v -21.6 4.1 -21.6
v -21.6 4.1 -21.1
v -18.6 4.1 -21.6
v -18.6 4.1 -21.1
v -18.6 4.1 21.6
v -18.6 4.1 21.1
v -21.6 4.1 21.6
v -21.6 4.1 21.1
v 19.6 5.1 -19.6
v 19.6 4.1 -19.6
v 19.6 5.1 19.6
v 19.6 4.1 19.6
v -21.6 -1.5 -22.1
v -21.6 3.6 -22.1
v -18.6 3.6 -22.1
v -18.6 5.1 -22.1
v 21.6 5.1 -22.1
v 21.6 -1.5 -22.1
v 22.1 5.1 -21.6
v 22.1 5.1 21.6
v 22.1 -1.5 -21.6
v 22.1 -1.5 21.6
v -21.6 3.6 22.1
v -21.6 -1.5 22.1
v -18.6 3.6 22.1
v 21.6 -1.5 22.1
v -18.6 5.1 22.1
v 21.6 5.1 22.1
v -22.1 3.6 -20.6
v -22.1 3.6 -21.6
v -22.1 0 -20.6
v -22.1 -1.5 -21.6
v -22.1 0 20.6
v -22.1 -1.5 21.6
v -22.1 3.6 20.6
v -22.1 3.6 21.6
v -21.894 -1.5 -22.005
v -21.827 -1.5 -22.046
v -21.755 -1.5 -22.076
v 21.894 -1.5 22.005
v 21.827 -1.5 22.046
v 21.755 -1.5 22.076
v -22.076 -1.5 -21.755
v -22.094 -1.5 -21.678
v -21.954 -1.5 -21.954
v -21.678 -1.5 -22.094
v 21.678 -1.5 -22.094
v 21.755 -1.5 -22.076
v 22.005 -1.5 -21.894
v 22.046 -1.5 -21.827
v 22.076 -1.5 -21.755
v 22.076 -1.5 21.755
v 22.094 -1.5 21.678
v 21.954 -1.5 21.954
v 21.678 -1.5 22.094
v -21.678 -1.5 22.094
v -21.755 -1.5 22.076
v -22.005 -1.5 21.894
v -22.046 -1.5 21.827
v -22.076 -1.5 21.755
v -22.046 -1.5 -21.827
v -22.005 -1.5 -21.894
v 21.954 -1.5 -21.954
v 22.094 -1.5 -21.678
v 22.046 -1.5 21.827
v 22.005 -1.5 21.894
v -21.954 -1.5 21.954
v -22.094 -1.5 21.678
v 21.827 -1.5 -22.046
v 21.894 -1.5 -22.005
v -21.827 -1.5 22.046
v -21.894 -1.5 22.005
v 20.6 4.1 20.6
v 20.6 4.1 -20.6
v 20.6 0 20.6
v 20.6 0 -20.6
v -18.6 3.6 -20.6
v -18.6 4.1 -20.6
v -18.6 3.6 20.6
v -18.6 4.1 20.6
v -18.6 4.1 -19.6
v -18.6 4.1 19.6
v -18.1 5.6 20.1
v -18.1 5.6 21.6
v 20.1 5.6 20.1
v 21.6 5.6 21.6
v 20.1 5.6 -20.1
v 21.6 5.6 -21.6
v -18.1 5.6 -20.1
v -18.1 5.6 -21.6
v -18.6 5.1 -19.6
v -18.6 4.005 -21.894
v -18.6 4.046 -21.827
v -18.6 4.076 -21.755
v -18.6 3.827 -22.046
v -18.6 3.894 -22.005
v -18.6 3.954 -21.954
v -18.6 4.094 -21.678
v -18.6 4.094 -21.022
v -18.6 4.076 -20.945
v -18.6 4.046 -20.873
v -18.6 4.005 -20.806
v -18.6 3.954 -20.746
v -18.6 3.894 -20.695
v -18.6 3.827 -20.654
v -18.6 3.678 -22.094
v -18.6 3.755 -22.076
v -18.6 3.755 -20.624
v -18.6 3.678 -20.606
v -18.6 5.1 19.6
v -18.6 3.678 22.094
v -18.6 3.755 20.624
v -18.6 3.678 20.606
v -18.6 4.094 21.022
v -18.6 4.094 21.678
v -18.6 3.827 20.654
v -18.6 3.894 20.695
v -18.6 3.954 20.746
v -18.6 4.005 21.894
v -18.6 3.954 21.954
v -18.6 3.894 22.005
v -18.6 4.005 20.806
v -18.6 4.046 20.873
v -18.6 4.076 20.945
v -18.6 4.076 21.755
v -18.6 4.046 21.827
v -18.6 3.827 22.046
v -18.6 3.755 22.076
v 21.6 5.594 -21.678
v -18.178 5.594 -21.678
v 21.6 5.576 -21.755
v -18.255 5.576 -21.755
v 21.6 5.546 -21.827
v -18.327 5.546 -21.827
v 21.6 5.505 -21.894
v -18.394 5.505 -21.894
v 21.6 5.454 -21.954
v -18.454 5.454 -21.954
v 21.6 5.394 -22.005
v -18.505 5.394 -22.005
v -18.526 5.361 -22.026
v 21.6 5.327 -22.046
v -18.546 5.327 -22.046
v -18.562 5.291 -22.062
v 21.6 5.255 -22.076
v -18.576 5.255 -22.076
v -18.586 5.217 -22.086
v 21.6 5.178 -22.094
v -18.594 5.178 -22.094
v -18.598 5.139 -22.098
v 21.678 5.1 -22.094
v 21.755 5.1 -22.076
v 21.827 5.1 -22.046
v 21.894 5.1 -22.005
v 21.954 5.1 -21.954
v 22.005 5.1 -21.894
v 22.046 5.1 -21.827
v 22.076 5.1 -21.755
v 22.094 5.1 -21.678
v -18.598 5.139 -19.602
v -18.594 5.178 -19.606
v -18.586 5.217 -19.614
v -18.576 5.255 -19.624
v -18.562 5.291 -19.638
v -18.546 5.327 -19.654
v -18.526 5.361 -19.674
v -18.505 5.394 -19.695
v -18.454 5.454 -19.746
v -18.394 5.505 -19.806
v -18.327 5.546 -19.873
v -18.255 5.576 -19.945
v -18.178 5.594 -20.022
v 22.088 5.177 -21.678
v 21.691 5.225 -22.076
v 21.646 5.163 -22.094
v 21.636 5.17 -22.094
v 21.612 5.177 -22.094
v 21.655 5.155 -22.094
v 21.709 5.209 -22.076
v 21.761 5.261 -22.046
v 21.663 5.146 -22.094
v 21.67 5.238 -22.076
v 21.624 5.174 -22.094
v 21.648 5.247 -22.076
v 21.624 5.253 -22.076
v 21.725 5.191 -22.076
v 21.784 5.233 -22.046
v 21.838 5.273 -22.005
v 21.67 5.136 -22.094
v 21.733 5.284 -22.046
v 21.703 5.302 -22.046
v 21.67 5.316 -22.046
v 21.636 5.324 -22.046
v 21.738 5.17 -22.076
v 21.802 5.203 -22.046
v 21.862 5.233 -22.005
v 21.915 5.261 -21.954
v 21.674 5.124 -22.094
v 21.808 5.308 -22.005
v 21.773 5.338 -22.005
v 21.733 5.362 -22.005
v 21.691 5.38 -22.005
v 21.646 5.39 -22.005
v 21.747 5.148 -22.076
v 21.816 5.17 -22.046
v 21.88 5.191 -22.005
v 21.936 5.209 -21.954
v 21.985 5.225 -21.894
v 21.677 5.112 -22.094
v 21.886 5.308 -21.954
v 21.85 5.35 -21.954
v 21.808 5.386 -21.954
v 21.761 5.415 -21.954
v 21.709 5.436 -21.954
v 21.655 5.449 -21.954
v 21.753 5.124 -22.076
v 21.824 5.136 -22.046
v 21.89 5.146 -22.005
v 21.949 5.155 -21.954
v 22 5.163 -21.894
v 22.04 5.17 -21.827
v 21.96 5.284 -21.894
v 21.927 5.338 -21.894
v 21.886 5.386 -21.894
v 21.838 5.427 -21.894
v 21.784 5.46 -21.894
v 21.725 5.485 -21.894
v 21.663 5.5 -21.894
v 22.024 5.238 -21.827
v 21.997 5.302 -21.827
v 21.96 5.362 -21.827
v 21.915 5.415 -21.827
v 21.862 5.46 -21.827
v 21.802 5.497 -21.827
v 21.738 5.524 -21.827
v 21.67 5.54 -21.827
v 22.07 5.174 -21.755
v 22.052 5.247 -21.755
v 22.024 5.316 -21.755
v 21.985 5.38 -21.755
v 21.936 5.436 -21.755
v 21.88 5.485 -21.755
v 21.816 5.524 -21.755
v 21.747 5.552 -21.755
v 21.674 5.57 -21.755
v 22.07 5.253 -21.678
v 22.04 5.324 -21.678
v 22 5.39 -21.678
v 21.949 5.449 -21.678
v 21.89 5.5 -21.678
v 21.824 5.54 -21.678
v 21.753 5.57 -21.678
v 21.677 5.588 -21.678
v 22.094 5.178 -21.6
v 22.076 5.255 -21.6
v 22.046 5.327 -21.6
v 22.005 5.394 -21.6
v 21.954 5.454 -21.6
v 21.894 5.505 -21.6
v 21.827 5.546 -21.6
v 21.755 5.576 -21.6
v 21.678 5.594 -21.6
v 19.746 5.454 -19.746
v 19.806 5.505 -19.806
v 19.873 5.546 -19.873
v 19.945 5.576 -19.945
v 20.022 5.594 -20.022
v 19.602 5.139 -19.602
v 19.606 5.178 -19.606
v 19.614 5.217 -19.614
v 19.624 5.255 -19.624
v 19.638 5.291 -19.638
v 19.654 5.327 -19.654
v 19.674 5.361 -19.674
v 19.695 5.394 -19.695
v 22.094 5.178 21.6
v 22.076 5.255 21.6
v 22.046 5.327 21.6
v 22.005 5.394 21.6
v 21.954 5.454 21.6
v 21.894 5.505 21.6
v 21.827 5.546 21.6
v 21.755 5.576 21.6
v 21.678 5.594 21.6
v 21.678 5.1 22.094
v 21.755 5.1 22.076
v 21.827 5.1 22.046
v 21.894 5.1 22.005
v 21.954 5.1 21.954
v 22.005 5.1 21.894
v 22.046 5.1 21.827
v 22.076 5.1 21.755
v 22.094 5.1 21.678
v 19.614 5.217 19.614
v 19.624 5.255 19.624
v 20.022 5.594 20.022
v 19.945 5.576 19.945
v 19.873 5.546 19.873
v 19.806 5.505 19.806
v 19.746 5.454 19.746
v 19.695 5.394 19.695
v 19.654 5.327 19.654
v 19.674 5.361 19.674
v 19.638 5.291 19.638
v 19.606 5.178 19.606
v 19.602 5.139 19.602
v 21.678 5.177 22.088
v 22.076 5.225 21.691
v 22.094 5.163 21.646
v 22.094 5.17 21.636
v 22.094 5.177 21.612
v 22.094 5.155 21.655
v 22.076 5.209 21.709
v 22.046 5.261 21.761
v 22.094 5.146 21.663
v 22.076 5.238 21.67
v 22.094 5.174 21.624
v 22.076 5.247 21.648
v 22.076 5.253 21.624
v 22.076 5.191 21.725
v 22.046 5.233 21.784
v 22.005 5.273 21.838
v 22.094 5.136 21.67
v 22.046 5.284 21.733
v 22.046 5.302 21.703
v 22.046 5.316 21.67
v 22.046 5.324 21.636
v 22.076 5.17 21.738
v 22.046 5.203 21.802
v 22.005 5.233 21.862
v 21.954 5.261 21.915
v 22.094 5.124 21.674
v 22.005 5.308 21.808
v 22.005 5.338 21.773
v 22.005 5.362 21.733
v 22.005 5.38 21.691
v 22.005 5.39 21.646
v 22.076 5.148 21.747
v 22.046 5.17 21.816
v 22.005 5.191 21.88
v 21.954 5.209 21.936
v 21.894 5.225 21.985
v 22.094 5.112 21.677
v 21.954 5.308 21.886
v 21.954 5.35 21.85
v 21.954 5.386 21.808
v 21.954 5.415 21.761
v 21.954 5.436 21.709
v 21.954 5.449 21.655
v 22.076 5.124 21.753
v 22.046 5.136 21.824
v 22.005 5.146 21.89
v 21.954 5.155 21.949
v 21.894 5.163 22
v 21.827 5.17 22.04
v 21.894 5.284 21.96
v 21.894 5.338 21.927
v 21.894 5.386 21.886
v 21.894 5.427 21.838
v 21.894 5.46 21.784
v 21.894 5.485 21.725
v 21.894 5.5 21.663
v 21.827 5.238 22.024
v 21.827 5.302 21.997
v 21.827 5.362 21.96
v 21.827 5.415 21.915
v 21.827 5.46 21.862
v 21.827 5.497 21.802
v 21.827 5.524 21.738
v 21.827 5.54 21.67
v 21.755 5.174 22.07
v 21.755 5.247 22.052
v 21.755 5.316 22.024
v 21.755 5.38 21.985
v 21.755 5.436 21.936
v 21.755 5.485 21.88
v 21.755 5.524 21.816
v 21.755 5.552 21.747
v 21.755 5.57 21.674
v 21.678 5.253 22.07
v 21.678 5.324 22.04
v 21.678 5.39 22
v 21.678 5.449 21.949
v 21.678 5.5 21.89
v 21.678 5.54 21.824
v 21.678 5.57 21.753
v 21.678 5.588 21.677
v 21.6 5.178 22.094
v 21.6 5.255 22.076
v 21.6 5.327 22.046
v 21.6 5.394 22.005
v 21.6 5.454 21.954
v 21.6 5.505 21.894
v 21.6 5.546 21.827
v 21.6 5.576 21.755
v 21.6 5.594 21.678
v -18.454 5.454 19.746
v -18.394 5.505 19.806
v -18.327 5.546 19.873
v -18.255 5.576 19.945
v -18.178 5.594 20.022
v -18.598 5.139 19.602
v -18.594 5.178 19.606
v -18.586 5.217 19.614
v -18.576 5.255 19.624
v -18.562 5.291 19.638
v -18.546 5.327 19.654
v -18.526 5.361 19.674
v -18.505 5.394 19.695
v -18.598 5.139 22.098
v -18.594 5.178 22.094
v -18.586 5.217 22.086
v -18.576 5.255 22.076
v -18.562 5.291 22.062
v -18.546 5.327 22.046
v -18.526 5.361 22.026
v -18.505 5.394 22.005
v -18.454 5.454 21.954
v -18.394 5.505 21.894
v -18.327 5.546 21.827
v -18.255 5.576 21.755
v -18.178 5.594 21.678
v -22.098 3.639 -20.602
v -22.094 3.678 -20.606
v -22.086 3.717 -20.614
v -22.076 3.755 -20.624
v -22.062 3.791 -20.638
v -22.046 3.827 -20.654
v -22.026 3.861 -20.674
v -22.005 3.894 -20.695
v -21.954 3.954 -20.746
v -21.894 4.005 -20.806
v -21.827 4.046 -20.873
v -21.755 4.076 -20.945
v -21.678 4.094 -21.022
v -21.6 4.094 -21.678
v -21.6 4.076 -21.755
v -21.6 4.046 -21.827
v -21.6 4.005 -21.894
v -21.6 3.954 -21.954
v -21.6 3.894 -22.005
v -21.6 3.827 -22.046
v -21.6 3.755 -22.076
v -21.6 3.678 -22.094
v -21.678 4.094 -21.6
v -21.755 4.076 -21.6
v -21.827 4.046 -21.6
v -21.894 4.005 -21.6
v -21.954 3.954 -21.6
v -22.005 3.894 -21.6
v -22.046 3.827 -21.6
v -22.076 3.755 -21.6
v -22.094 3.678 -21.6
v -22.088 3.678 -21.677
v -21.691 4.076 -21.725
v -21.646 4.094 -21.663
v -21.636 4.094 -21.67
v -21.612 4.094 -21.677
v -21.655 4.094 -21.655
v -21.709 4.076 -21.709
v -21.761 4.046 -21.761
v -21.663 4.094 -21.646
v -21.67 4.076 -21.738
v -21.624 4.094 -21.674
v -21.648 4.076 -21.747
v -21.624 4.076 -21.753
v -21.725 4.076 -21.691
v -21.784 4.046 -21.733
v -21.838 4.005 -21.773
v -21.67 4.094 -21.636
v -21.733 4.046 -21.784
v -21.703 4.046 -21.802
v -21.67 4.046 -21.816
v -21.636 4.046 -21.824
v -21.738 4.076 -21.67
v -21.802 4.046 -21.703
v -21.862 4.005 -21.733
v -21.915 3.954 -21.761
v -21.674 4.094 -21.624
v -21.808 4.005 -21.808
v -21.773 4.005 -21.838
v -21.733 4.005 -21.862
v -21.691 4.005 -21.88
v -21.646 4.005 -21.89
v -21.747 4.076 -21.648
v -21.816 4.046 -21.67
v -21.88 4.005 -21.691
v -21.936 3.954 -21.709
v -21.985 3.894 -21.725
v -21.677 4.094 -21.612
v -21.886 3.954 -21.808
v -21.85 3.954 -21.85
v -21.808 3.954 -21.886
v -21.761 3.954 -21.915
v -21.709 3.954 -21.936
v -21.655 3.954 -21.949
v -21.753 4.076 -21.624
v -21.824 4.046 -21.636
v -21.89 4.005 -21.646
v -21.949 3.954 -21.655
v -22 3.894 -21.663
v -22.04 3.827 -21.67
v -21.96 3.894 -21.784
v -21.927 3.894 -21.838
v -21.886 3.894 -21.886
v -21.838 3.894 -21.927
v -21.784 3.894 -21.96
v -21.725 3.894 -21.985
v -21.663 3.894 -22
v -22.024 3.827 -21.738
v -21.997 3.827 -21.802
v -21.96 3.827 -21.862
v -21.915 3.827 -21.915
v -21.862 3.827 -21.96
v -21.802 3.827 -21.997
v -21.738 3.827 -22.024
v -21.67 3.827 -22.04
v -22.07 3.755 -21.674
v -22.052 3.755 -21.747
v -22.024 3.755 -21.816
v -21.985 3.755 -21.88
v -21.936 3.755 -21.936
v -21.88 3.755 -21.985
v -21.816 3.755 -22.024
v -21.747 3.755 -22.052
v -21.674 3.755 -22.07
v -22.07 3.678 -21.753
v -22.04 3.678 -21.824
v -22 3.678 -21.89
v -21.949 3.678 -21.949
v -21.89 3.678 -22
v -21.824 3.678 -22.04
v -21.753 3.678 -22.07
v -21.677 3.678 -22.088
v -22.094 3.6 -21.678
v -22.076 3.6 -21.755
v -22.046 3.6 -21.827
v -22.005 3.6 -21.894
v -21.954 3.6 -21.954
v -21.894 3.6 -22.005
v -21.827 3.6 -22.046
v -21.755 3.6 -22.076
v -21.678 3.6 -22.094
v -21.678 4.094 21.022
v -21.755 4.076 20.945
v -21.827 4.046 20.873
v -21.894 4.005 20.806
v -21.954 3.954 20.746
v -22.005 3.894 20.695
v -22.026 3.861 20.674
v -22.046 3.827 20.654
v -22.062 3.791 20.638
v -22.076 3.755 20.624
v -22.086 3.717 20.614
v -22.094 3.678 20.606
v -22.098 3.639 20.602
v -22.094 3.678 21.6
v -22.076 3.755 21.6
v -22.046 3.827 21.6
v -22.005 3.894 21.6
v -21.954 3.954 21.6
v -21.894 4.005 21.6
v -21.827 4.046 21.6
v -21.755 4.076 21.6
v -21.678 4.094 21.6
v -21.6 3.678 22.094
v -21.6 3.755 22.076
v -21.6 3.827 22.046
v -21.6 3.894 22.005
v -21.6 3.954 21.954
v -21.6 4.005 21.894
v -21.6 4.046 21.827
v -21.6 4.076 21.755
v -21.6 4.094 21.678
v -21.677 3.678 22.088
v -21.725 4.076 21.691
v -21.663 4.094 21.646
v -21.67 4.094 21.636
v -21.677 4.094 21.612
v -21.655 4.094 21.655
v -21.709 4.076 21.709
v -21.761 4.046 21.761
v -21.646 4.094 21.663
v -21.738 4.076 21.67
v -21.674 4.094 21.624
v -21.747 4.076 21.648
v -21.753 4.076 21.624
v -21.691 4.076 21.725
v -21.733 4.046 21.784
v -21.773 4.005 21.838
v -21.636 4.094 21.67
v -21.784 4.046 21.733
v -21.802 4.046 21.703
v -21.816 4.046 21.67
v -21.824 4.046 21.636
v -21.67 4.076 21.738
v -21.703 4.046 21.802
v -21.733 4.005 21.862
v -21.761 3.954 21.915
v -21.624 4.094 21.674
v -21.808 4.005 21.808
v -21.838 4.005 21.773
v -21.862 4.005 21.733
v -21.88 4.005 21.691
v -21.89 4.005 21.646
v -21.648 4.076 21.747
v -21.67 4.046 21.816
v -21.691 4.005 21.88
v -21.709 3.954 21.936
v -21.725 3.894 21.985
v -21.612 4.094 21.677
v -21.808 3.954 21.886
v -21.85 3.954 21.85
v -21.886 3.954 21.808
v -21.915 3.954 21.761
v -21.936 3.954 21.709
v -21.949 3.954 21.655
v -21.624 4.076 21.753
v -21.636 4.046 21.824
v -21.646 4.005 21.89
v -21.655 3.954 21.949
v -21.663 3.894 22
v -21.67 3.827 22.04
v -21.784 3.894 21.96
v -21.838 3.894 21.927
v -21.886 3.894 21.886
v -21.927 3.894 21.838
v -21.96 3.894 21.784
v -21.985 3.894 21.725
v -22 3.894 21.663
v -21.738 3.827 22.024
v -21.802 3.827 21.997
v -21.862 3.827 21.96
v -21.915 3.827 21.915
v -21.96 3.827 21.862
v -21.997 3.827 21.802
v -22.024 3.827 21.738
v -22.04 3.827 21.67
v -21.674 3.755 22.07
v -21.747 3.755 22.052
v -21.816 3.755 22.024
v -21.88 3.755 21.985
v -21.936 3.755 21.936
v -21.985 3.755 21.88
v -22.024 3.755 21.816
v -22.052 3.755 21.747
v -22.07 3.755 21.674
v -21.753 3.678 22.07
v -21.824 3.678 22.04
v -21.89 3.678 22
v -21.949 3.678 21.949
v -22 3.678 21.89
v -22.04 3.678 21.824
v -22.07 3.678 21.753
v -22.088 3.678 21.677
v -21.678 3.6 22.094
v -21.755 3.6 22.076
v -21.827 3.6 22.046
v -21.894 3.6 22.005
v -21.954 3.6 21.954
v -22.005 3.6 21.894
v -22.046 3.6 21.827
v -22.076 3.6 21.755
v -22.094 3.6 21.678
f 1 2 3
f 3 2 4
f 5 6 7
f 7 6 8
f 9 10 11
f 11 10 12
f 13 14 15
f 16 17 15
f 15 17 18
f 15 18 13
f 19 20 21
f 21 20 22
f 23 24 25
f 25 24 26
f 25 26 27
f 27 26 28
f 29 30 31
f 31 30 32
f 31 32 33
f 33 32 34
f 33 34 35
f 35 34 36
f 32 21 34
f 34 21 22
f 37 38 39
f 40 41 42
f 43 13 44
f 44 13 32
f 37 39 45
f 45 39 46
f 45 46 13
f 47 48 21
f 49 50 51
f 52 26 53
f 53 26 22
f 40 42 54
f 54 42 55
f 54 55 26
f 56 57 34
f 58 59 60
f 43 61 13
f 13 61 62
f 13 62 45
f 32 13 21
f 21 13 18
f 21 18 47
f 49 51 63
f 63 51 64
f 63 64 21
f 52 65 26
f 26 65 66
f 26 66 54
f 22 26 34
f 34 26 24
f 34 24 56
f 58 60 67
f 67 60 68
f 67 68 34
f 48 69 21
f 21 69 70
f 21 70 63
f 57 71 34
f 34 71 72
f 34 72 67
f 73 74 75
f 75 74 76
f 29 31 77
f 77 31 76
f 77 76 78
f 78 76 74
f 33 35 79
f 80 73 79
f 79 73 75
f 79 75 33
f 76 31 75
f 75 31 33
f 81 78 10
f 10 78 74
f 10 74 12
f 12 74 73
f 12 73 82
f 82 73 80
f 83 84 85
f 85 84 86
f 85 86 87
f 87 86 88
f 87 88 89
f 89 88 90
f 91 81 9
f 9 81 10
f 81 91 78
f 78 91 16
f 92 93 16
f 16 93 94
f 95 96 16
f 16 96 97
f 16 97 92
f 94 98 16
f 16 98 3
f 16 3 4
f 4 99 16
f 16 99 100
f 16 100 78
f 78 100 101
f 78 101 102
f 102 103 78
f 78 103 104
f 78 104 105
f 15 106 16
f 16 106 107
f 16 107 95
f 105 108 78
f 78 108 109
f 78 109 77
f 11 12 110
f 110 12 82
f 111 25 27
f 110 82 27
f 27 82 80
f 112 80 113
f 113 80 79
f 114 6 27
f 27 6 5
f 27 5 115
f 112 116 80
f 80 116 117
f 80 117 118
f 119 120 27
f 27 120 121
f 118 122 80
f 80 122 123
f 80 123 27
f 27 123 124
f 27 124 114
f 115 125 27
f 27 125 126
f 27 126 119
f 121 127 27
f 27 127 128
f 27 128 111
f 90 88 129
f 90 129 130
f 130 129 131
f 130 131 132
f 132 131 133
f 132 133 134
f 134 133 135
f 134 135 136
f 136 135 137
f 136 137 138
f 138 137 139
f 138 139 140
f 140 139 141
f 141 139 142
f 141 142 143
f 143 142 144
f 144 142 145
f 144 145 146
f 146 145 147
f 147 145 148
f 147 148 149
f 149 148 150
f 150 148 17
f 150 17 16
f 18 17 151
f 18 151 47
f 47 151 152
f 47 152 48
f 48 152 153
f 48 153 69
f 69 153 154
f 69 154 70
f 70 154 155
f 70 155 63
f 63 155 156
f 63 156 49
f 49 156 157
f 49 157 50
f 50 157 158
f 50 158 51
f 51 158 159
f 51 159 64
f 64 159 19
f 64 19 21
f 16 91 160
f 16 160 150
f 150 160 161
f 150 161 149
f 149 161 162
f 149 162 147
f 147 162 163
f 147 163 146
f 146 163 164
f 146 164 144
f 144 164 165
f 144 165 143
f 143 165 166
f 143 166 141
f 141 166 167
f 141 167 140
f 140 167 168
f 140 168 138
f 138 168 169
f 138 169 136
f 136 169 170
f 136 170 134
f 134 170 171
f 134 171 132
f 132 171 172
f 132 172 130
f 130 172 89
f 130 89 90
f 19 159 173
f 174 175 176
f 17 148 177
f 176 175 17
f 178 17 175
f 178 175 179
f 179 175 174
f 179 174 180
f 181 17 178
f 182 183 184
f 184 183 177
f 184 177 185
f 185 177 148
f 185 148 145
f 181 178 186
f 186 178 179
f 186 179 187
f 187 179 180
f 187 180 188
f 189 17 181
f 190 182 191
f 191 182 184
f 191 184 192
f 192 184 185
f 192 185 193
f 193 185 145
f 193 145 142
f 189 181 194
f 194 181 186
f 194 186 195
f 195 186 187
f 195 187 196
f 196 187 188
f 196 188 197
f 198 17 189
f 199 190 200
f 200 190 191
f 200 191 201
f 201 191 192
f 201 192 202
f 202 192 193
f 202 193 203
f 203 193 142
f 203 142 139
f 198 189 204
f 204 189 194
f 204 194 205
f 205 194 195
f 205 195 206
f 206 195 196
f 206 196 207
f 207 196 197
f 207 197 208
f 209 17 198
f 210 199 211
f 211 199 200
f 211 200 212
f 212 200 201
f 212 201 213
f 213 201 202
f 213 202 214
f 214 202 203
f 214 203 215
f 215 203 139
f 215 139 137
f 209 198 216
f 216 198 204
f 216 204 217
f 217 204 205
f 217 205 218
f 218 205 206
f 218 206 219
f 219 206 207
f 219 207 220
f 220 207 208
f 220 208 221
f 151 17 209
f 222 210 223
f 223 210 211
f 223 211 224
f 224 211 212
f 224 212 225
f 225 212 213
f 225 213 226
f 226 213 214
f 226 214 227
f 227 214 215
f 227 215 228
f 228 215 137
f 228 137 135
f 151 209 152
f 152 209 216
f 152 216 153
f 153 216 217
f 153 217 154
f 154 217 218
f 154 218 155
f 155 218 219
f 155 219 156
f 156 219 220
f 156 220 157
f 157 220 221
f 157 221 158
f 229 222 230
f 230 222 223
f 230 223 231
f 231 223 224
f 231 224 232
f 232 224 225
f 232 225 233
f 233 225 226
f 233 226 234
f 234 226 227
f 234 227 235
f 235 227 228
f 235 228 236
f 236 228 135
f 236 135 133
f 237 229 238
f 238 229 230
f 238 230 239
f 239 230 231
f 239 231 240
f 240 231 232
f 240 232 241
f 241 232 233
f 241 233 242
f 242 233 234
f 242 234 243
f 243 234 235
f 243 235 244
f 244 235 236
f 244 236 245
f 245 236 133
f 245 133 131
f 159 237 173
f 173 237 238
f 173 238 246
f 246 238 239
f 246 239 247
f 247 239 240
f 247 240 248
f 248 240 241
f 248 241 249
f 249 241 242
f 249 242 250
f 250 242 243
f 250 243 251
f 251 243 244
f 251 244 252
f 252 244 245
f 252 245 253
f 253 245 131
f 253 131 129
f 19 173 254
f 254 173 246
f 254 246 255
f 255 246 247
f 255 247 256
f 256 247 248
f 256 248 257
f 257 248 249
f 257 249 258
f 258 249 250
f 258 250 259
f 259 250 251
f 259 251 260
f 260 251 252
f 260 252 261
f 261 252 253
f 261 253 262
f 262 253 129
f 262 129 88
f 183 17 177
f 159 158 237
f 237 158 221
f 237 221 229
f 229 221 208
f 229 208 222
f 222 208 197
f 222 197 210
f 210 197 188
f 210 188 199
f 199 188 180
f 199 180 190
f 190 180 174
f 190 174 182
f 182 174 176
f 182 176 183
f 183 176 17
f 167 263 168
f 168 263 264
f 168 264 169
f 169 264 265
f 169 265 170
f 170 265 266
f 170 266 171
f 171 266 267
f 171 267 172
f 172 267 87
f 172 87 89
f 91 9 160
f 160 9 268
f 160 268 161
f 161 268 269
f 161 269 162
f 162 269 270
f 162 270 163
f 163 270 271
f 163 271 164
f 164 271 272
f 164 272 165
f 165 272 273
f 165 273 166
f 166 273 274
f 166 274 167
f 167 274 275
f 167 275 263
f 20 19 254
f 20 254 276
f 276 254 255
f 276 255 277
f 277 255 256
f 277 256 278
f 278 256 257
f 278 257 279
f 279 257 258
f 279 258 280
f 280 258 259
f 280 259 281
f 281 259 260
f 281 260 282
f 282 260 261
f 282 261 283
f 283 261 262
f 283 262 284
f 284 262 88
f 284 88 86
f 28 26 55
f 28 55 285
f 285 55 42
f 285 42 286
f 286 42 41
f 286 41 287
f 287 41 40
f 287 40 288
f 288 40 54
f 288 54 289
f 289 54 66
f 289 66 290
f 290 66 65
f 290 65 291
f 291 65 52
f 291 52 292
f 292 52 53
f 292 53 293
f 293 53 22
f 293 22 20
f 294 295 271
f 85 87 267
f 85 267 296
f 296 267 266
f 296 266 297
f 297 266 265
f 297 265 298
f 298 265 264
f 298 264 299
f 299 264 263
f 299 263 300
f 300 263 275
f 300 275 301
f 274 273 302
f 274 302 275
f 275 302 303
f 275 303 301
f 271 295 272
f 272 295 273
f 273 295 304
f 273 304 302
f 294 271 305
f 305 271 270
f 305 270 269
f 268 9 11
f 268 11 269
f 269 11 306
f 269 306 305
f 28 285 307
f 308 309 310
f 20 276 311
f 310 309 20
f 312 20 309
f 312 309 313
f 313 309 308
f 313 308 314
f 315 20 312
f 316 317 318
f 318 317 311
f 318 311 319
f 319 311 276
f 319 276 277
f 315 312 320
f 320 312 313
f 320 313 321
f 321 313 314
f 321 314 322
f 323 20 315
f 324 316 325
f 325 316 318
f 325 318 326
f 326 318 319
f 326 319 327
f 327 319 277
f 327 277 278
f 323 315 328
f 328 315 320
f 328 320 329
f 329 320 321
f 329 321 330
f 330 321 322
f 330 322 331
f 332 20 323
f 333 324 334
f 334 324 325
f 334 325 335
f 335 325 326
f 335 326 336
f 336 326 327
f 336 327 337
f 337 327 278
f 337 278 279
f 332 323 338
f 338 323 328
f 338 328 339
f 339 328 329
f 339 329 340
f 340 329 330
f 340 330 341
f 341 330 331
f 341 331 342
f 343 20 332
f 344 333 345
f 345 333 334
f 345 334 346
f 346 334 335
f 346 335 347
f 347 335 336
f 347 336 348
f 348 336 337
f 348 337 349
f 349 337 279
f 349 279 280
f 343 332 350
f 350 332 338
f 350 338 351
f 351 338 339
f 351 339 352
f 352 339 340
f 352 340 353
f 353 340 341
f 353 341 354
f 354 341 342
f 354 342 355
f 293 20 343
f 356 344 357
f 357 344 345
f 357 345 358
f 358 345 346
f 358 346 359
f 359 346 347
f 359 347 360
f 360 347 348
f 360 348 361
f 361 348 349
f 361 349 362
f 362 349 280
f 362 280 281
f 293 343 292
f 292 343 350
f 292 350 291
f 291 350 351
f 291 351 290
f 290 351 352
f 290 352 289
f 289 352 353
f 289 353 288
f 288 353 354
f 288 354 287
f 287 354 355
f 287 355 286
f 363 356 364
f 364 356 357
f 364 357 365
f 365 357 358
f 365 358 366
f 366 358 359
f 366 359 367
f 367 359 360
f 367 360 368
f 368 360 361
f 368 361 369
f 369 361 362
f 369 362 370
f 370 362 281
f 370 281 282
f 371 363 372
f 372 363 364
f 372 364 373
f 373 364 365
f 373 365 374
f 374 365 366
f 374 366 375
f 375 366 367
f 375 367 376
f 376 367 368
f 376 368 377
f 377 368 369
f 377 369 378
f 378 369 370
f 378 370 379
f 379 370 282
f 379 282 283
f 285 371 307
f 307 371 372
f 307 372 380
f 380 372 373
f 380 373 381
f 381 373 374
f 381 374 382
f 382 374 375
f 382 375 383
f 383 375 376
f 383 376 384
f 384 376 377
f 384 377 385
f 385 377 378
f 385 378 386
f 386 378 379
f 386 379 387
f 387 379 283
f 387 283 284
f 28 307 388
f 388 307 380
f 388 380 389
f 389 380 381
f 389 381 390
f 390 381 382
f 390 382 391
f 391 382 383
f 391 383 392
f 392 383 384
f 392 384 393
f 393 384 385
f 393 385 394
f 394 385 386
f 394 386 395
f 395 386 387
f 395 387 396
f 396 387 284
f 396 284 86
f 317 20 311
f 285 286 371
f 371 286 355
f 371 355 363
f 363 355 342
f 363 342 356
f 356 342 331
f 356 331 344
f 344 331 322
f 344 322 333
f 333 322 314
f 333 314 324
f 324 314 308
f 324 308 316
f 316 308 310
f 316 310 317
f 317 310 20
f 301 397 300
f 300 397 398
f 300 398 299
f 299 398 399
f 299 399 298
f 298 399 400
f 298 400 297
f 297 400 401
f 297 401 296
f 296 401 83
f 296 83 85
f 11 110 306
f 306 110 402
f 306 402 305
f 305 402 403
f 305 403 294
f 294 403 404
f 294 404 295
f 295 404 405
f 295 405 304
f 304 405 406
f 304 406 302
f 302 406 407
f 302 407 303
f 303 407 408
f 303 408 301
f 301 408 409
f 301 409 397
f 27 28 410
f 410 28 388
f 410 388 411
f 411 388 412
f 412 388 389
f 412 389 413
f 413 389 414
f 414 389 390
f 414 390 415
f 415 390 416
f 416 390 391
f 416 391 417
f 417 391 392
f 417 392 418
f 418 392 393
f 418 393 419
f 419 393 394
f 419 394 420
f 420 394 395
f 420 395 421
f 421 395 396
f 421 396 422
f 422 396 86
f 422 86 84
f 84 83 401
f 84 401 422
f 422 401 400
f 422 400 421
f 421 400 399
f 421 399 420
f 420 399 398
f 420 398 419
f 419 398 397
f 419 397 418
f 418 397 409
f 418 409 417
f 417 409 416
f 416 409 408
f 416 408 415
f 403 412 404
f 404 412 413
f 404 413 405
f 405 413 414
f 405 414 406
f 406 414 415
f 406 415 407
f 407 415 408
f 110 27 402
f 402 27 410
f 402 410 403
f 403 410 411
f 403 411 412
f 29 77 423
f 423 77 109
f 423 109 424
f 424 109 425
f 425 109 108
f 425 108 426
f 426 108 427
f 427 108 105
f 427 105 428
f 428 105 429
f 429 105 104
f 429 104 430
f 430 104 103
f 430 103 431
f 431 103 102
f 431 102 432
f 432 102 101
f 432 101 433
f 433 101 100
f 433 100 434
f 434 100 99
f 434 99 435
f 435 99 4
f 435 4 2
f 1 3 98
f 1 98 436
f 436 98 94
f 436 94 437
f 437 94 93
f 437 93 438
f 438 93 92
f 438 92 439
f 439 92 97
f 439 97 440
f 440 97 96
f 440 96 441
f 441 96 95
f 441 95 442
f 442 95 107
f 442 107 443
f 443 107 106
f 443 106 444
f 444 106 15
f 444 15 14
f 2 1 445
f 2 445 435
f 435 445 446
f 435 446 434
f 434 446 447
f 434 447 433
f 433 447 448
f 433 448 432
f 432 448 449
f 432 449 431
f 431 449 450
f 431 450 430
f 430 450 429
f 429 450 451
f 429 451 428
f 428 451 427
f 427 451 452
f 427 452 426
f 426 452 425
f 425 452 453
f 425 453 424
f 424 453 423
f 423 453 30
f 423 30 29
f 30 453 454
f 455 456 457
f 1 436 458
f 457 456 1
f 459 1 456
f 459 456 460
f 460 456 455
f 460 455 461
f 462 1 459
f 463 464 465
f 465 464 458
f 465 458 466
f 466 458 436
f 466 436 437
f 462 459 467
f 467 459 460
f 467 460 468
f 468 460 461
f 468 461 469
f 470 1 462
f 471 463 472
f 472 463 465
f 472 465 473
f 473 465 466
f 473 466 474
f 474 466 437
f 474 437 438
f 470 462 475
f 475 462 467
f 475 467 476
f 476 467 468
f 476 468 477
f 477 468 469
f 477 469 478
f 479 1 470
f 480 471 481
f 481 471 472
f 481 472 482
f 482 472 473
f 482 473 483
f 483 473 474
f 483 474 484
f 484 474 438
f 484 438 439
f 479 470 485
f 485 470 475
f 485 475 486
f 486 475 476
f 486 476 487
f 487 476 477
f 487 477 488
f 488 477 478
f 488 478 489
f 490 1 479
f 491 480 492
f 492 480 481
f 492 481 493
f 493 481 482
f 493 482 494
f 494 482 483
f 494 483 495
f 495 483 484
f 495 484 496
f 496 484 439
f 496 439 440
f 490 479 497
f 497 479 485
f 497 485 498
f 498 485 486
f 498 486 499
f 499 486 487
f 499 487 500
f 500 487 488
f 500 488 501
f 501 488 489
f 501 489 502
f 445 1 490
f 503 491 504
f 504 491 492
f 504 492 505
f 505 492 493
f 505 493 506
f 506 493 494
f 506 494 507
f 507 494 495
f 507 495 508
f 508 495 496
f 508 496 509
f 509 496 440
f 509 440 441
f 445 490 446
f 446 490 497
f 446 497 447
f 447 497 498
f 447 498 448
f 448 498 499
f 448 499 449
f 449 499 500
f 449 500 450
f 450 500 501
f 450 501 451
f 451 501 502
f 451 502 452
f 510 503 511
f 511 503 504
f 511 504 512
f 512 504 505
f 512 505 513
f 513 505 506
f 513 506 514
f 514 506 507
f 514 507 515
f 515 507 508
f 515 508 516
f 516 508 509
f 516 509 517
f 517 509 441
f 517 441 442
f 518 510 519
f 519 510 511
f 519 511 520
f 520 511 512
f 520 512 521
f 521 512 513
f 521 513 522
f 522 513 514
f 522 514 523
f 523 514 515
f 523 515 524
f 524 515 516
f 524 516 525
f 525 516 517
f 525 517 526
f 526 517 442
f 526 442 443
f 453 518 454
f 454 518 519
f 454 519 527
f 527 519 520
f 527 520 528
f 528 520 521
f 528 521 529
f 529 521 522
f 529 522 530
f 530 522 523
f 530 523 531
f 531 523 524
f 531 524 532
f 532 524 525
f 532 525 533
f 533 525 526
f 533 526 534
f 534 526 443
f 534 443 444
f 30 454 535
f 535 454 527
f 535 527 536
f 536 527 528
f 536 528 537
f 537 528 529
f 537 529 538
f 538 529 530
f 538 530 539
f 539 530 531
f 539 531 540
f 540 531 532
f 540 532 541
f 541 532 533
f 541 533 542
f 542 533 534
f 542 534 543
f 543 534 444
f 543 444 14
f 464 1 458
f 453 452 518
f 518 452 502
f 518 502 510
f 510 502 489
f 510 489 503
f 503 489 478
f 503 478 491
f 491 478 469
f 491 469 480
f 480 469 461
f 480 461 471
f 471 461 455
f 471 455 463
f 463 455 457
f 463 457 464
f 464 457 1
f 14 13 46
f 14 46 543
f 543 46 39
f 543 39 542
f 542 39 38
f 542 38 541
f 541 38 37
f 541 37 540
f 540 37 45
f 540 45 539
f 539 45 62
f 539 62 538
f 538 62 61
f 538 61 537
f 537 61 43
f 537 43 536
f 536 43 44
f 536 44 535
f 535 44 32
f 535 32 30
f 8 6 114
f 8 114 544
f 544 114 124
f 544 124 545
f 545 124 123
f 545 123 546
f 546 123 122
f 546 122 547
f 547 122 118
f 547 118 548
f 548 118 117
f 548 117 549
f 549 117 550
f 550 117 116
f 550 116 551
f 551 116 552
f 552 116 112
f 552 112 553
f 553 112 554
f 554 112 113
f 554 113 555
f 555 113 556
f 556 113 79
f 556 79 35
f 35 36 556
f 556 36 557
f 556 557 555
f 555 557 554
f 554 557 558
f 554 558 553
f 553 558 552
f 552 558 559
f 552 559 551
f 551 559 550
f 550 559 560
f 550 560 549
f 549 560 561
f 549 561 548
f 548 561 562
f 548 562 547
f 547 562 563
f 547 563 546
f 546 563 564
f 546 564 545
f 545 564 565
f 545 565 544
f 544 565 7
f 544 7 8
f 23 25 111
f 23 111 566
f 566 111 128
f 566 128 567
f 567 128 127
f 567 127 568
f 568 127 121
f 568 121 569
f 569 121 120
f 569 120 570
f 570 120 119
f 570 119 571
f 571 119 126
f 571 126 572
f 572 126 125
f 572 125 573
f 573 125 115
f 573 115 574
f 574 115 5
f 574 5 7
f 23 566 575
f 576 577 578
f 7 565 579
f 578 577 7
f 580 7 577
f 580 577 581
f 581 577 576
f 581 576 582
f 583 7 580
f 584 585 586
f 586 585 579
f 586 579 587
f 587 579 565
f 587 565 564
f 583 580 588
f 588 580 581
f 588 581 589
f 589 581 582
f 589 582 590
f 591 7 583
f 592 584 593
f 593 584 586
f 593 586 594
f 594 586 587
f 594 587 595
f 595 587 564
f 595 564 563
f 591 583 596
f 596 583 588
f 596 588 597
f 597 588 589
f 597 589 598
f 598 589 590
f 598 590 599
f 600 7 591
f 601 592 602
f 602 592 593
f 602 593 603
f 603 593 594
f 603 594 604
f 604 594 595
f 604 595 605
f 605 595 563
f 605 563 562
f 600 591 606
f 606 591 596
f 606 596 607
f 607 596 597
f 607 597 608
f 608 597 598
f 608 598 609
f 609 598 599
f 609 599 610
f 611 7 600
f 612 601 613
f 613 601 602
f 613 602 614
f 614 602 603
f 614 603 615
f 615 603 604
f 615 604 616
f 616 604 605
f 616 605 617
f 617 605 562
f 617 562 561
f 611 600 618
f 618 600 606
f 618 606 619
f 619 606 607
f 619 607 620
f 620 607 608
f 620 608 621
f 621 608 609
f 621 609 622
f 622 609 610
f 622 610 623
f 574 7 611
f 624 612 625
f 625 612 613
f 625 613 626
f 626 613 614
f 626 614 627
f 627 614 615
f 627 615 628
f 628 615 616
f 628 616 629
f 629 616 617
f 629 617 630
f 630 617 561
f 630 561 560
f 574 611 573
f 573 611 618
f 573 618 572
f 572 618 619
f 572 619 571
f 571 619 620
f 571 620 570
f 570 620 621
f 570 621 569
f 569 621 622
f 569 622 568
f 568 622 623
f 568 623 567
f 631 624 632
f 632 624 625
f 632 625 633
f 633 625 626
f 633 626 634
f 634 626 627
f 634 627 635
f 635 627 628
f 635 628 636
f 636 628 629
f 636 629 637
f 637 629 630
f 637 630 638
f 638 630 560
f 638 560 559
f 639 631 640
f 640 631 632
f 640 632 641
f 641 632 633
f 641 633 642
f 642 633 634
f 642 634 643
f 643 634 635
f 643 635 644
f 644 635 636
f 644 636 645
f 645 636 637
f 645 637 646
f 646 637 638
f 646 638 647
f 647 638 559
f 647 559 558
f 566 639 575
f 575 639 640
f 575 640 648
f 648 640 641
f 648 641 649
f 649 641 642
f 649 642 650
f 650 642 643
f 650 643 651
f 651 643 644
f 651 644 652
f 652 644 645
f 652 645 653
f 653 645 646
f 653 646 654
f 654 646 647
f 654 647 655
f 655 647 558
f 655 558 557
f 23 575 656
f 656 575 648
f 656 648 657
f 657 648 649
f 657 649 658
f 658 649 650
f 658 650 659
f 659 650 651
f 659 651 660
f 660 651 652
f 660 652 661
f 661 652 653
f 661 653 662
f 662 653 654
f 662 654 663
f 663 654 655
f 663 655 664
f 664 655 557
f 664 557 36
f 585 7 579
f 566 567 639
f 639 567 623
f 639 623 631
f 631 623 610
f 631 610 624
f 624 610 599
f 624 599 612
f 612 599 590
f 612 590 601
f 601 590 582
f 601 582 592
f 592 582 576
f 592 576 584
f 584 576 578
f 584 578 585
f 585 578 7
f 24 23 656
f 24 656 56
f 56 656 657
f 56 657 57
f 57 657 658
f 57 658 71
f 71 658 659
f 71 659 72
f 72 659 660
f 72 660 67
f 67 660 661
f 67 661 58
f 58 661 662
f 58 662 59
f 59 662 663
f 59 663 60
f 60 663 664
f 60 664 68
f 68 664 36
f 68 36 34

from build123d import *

# Parameters (mm, degrees)
SKETCH2_W           = 44.2
SKETCH2_H           = 44.2
BOSS_EXTRUDE1_DEPTH = 1.5
SKETCH2_3_W         = 44.2
SKETCH2_3_H         = 44.2
SKETCH2_3_W_2       = 41.2
SKETCH2_3_H_2       = 41.2
BOSS_EXTRUDE2_DEPTH = 4.1
SKETCH3_W           = 2.5
SKETCH3_H           = 44.2
BOSS_EXTRUDE3_DEPTH = 1.5
BOSS_EXTRUDE5_DEPTH = 38.2
SKETCH5_W           = 6.546498532
SKETCH5_H           = 41.2
CUT_EXTRUDE1_DEPTH  = 4.1
FILLET2_R           = 0.5


with BuildPart() as part:
    # Sketch2 → Boss-Extrude1 (new body)
    with BuildSketch(Plane(origin=(0, 0, 0), x_dir=(1, 0, 0), z_dir=(0, 1, 0))):
        Rectangle(SKETCH2_W, SKETCH2_H)
    extrude(amount=-BOSS_EXTRUDE1_DEPTH)

    # Sketch2<3> → Boss-Extrude2 (add)
    with BuildSketch(Plane(origin=(0, 0, 0), x_dir=(1, 0, 0), z_dir=(0, 1, 0))):
        Rectangle(SKETCH2_3_W, SKETCH2_3_H)
        Rectangle(SKETCH2_3_W_2, SKETCH2_3_H_2, mode=Mode.SUBTRACT)
    extrude(amount=BOSS_EXTRUDE2_DEPTH)

    # Sketch3 → Boss-Extrude3 (add)
    with BuildSketch(Plane(origin=(0, 4.1, 0), x_dir=(1, 0, 0), z_dir=(0, 1, 0))):
        with Locations((20.85, 0)):
            Rectangle(SKETCH3_W, SKETCH3_H)
    extrude(amount=BOSS_EXTRUDE3_DEPTH)

    # Sketch6 → Boss-Extrude5 (add)
    with BuildSketch(Plane.ZY.offset(-19.6)):
        Polygon((-19.6, 5.6), (-19.6, 4.1), (-20.6, 4.1), (-22.1, 4.1), (-22.1, 5.6), align=None)
        Polygon((19.6, 5.6), (19.6, 4.1), (20.6, 4.1), (22.1, 4.1), (22.1, 5.6), align=None)
    extrude(amount=BOSS_EXTRUDE5_DEPTH)

    # Sketch5 → Cut-Extrude1 (cut)
    with BuildSketch(Plane(origin=(0, 4.1, 0), x_dir=(1, 0, 0), z_dir=(0, 1, 0))):
        with Locations((-23.873249266, 0)):
            Rectangle(SKETCH5_W, SKETCH5_H)
    extrude(amount=-CUT_EXTRUDE1_DEPTH, mode=Mode.SUBTRACT)

    # Fillet2
    fillet2_edges = [part.edges().sort_by_distance(p)[0] for p in [
        (-22.1, 4.1, -21.35),
        (-20.35, 4.1, 22.1),
        (-20.35, 4.1, 20.6),
        (22.1, 5.6, 0),
        (1.75, 5.6, -22.1),
        (1.75, 5.6, 22.1),
        (19.6, 5.6, 0),
        (-20.35, 4.1, -20.6),
        (-20.35, 4.1, -22.1),
        (-18.6, 5.6, -20.85),
        (0.5, 5.6, -19.6),
        (0.5, 5.6, 19.6),
        (-18.6, 5.6, 20.85),
        (-22.1, 1.3, -22.1),
        (-22.1, 1.3, 22.1),
        (22.1, 2.05, 22.1),
        (22.1, 2.05, -22.1),
        (-22.1, 4.1, 21.35),
    ]]
    fillet(fillet2_edges, radius=FILLET2_R)


solid = part.part
